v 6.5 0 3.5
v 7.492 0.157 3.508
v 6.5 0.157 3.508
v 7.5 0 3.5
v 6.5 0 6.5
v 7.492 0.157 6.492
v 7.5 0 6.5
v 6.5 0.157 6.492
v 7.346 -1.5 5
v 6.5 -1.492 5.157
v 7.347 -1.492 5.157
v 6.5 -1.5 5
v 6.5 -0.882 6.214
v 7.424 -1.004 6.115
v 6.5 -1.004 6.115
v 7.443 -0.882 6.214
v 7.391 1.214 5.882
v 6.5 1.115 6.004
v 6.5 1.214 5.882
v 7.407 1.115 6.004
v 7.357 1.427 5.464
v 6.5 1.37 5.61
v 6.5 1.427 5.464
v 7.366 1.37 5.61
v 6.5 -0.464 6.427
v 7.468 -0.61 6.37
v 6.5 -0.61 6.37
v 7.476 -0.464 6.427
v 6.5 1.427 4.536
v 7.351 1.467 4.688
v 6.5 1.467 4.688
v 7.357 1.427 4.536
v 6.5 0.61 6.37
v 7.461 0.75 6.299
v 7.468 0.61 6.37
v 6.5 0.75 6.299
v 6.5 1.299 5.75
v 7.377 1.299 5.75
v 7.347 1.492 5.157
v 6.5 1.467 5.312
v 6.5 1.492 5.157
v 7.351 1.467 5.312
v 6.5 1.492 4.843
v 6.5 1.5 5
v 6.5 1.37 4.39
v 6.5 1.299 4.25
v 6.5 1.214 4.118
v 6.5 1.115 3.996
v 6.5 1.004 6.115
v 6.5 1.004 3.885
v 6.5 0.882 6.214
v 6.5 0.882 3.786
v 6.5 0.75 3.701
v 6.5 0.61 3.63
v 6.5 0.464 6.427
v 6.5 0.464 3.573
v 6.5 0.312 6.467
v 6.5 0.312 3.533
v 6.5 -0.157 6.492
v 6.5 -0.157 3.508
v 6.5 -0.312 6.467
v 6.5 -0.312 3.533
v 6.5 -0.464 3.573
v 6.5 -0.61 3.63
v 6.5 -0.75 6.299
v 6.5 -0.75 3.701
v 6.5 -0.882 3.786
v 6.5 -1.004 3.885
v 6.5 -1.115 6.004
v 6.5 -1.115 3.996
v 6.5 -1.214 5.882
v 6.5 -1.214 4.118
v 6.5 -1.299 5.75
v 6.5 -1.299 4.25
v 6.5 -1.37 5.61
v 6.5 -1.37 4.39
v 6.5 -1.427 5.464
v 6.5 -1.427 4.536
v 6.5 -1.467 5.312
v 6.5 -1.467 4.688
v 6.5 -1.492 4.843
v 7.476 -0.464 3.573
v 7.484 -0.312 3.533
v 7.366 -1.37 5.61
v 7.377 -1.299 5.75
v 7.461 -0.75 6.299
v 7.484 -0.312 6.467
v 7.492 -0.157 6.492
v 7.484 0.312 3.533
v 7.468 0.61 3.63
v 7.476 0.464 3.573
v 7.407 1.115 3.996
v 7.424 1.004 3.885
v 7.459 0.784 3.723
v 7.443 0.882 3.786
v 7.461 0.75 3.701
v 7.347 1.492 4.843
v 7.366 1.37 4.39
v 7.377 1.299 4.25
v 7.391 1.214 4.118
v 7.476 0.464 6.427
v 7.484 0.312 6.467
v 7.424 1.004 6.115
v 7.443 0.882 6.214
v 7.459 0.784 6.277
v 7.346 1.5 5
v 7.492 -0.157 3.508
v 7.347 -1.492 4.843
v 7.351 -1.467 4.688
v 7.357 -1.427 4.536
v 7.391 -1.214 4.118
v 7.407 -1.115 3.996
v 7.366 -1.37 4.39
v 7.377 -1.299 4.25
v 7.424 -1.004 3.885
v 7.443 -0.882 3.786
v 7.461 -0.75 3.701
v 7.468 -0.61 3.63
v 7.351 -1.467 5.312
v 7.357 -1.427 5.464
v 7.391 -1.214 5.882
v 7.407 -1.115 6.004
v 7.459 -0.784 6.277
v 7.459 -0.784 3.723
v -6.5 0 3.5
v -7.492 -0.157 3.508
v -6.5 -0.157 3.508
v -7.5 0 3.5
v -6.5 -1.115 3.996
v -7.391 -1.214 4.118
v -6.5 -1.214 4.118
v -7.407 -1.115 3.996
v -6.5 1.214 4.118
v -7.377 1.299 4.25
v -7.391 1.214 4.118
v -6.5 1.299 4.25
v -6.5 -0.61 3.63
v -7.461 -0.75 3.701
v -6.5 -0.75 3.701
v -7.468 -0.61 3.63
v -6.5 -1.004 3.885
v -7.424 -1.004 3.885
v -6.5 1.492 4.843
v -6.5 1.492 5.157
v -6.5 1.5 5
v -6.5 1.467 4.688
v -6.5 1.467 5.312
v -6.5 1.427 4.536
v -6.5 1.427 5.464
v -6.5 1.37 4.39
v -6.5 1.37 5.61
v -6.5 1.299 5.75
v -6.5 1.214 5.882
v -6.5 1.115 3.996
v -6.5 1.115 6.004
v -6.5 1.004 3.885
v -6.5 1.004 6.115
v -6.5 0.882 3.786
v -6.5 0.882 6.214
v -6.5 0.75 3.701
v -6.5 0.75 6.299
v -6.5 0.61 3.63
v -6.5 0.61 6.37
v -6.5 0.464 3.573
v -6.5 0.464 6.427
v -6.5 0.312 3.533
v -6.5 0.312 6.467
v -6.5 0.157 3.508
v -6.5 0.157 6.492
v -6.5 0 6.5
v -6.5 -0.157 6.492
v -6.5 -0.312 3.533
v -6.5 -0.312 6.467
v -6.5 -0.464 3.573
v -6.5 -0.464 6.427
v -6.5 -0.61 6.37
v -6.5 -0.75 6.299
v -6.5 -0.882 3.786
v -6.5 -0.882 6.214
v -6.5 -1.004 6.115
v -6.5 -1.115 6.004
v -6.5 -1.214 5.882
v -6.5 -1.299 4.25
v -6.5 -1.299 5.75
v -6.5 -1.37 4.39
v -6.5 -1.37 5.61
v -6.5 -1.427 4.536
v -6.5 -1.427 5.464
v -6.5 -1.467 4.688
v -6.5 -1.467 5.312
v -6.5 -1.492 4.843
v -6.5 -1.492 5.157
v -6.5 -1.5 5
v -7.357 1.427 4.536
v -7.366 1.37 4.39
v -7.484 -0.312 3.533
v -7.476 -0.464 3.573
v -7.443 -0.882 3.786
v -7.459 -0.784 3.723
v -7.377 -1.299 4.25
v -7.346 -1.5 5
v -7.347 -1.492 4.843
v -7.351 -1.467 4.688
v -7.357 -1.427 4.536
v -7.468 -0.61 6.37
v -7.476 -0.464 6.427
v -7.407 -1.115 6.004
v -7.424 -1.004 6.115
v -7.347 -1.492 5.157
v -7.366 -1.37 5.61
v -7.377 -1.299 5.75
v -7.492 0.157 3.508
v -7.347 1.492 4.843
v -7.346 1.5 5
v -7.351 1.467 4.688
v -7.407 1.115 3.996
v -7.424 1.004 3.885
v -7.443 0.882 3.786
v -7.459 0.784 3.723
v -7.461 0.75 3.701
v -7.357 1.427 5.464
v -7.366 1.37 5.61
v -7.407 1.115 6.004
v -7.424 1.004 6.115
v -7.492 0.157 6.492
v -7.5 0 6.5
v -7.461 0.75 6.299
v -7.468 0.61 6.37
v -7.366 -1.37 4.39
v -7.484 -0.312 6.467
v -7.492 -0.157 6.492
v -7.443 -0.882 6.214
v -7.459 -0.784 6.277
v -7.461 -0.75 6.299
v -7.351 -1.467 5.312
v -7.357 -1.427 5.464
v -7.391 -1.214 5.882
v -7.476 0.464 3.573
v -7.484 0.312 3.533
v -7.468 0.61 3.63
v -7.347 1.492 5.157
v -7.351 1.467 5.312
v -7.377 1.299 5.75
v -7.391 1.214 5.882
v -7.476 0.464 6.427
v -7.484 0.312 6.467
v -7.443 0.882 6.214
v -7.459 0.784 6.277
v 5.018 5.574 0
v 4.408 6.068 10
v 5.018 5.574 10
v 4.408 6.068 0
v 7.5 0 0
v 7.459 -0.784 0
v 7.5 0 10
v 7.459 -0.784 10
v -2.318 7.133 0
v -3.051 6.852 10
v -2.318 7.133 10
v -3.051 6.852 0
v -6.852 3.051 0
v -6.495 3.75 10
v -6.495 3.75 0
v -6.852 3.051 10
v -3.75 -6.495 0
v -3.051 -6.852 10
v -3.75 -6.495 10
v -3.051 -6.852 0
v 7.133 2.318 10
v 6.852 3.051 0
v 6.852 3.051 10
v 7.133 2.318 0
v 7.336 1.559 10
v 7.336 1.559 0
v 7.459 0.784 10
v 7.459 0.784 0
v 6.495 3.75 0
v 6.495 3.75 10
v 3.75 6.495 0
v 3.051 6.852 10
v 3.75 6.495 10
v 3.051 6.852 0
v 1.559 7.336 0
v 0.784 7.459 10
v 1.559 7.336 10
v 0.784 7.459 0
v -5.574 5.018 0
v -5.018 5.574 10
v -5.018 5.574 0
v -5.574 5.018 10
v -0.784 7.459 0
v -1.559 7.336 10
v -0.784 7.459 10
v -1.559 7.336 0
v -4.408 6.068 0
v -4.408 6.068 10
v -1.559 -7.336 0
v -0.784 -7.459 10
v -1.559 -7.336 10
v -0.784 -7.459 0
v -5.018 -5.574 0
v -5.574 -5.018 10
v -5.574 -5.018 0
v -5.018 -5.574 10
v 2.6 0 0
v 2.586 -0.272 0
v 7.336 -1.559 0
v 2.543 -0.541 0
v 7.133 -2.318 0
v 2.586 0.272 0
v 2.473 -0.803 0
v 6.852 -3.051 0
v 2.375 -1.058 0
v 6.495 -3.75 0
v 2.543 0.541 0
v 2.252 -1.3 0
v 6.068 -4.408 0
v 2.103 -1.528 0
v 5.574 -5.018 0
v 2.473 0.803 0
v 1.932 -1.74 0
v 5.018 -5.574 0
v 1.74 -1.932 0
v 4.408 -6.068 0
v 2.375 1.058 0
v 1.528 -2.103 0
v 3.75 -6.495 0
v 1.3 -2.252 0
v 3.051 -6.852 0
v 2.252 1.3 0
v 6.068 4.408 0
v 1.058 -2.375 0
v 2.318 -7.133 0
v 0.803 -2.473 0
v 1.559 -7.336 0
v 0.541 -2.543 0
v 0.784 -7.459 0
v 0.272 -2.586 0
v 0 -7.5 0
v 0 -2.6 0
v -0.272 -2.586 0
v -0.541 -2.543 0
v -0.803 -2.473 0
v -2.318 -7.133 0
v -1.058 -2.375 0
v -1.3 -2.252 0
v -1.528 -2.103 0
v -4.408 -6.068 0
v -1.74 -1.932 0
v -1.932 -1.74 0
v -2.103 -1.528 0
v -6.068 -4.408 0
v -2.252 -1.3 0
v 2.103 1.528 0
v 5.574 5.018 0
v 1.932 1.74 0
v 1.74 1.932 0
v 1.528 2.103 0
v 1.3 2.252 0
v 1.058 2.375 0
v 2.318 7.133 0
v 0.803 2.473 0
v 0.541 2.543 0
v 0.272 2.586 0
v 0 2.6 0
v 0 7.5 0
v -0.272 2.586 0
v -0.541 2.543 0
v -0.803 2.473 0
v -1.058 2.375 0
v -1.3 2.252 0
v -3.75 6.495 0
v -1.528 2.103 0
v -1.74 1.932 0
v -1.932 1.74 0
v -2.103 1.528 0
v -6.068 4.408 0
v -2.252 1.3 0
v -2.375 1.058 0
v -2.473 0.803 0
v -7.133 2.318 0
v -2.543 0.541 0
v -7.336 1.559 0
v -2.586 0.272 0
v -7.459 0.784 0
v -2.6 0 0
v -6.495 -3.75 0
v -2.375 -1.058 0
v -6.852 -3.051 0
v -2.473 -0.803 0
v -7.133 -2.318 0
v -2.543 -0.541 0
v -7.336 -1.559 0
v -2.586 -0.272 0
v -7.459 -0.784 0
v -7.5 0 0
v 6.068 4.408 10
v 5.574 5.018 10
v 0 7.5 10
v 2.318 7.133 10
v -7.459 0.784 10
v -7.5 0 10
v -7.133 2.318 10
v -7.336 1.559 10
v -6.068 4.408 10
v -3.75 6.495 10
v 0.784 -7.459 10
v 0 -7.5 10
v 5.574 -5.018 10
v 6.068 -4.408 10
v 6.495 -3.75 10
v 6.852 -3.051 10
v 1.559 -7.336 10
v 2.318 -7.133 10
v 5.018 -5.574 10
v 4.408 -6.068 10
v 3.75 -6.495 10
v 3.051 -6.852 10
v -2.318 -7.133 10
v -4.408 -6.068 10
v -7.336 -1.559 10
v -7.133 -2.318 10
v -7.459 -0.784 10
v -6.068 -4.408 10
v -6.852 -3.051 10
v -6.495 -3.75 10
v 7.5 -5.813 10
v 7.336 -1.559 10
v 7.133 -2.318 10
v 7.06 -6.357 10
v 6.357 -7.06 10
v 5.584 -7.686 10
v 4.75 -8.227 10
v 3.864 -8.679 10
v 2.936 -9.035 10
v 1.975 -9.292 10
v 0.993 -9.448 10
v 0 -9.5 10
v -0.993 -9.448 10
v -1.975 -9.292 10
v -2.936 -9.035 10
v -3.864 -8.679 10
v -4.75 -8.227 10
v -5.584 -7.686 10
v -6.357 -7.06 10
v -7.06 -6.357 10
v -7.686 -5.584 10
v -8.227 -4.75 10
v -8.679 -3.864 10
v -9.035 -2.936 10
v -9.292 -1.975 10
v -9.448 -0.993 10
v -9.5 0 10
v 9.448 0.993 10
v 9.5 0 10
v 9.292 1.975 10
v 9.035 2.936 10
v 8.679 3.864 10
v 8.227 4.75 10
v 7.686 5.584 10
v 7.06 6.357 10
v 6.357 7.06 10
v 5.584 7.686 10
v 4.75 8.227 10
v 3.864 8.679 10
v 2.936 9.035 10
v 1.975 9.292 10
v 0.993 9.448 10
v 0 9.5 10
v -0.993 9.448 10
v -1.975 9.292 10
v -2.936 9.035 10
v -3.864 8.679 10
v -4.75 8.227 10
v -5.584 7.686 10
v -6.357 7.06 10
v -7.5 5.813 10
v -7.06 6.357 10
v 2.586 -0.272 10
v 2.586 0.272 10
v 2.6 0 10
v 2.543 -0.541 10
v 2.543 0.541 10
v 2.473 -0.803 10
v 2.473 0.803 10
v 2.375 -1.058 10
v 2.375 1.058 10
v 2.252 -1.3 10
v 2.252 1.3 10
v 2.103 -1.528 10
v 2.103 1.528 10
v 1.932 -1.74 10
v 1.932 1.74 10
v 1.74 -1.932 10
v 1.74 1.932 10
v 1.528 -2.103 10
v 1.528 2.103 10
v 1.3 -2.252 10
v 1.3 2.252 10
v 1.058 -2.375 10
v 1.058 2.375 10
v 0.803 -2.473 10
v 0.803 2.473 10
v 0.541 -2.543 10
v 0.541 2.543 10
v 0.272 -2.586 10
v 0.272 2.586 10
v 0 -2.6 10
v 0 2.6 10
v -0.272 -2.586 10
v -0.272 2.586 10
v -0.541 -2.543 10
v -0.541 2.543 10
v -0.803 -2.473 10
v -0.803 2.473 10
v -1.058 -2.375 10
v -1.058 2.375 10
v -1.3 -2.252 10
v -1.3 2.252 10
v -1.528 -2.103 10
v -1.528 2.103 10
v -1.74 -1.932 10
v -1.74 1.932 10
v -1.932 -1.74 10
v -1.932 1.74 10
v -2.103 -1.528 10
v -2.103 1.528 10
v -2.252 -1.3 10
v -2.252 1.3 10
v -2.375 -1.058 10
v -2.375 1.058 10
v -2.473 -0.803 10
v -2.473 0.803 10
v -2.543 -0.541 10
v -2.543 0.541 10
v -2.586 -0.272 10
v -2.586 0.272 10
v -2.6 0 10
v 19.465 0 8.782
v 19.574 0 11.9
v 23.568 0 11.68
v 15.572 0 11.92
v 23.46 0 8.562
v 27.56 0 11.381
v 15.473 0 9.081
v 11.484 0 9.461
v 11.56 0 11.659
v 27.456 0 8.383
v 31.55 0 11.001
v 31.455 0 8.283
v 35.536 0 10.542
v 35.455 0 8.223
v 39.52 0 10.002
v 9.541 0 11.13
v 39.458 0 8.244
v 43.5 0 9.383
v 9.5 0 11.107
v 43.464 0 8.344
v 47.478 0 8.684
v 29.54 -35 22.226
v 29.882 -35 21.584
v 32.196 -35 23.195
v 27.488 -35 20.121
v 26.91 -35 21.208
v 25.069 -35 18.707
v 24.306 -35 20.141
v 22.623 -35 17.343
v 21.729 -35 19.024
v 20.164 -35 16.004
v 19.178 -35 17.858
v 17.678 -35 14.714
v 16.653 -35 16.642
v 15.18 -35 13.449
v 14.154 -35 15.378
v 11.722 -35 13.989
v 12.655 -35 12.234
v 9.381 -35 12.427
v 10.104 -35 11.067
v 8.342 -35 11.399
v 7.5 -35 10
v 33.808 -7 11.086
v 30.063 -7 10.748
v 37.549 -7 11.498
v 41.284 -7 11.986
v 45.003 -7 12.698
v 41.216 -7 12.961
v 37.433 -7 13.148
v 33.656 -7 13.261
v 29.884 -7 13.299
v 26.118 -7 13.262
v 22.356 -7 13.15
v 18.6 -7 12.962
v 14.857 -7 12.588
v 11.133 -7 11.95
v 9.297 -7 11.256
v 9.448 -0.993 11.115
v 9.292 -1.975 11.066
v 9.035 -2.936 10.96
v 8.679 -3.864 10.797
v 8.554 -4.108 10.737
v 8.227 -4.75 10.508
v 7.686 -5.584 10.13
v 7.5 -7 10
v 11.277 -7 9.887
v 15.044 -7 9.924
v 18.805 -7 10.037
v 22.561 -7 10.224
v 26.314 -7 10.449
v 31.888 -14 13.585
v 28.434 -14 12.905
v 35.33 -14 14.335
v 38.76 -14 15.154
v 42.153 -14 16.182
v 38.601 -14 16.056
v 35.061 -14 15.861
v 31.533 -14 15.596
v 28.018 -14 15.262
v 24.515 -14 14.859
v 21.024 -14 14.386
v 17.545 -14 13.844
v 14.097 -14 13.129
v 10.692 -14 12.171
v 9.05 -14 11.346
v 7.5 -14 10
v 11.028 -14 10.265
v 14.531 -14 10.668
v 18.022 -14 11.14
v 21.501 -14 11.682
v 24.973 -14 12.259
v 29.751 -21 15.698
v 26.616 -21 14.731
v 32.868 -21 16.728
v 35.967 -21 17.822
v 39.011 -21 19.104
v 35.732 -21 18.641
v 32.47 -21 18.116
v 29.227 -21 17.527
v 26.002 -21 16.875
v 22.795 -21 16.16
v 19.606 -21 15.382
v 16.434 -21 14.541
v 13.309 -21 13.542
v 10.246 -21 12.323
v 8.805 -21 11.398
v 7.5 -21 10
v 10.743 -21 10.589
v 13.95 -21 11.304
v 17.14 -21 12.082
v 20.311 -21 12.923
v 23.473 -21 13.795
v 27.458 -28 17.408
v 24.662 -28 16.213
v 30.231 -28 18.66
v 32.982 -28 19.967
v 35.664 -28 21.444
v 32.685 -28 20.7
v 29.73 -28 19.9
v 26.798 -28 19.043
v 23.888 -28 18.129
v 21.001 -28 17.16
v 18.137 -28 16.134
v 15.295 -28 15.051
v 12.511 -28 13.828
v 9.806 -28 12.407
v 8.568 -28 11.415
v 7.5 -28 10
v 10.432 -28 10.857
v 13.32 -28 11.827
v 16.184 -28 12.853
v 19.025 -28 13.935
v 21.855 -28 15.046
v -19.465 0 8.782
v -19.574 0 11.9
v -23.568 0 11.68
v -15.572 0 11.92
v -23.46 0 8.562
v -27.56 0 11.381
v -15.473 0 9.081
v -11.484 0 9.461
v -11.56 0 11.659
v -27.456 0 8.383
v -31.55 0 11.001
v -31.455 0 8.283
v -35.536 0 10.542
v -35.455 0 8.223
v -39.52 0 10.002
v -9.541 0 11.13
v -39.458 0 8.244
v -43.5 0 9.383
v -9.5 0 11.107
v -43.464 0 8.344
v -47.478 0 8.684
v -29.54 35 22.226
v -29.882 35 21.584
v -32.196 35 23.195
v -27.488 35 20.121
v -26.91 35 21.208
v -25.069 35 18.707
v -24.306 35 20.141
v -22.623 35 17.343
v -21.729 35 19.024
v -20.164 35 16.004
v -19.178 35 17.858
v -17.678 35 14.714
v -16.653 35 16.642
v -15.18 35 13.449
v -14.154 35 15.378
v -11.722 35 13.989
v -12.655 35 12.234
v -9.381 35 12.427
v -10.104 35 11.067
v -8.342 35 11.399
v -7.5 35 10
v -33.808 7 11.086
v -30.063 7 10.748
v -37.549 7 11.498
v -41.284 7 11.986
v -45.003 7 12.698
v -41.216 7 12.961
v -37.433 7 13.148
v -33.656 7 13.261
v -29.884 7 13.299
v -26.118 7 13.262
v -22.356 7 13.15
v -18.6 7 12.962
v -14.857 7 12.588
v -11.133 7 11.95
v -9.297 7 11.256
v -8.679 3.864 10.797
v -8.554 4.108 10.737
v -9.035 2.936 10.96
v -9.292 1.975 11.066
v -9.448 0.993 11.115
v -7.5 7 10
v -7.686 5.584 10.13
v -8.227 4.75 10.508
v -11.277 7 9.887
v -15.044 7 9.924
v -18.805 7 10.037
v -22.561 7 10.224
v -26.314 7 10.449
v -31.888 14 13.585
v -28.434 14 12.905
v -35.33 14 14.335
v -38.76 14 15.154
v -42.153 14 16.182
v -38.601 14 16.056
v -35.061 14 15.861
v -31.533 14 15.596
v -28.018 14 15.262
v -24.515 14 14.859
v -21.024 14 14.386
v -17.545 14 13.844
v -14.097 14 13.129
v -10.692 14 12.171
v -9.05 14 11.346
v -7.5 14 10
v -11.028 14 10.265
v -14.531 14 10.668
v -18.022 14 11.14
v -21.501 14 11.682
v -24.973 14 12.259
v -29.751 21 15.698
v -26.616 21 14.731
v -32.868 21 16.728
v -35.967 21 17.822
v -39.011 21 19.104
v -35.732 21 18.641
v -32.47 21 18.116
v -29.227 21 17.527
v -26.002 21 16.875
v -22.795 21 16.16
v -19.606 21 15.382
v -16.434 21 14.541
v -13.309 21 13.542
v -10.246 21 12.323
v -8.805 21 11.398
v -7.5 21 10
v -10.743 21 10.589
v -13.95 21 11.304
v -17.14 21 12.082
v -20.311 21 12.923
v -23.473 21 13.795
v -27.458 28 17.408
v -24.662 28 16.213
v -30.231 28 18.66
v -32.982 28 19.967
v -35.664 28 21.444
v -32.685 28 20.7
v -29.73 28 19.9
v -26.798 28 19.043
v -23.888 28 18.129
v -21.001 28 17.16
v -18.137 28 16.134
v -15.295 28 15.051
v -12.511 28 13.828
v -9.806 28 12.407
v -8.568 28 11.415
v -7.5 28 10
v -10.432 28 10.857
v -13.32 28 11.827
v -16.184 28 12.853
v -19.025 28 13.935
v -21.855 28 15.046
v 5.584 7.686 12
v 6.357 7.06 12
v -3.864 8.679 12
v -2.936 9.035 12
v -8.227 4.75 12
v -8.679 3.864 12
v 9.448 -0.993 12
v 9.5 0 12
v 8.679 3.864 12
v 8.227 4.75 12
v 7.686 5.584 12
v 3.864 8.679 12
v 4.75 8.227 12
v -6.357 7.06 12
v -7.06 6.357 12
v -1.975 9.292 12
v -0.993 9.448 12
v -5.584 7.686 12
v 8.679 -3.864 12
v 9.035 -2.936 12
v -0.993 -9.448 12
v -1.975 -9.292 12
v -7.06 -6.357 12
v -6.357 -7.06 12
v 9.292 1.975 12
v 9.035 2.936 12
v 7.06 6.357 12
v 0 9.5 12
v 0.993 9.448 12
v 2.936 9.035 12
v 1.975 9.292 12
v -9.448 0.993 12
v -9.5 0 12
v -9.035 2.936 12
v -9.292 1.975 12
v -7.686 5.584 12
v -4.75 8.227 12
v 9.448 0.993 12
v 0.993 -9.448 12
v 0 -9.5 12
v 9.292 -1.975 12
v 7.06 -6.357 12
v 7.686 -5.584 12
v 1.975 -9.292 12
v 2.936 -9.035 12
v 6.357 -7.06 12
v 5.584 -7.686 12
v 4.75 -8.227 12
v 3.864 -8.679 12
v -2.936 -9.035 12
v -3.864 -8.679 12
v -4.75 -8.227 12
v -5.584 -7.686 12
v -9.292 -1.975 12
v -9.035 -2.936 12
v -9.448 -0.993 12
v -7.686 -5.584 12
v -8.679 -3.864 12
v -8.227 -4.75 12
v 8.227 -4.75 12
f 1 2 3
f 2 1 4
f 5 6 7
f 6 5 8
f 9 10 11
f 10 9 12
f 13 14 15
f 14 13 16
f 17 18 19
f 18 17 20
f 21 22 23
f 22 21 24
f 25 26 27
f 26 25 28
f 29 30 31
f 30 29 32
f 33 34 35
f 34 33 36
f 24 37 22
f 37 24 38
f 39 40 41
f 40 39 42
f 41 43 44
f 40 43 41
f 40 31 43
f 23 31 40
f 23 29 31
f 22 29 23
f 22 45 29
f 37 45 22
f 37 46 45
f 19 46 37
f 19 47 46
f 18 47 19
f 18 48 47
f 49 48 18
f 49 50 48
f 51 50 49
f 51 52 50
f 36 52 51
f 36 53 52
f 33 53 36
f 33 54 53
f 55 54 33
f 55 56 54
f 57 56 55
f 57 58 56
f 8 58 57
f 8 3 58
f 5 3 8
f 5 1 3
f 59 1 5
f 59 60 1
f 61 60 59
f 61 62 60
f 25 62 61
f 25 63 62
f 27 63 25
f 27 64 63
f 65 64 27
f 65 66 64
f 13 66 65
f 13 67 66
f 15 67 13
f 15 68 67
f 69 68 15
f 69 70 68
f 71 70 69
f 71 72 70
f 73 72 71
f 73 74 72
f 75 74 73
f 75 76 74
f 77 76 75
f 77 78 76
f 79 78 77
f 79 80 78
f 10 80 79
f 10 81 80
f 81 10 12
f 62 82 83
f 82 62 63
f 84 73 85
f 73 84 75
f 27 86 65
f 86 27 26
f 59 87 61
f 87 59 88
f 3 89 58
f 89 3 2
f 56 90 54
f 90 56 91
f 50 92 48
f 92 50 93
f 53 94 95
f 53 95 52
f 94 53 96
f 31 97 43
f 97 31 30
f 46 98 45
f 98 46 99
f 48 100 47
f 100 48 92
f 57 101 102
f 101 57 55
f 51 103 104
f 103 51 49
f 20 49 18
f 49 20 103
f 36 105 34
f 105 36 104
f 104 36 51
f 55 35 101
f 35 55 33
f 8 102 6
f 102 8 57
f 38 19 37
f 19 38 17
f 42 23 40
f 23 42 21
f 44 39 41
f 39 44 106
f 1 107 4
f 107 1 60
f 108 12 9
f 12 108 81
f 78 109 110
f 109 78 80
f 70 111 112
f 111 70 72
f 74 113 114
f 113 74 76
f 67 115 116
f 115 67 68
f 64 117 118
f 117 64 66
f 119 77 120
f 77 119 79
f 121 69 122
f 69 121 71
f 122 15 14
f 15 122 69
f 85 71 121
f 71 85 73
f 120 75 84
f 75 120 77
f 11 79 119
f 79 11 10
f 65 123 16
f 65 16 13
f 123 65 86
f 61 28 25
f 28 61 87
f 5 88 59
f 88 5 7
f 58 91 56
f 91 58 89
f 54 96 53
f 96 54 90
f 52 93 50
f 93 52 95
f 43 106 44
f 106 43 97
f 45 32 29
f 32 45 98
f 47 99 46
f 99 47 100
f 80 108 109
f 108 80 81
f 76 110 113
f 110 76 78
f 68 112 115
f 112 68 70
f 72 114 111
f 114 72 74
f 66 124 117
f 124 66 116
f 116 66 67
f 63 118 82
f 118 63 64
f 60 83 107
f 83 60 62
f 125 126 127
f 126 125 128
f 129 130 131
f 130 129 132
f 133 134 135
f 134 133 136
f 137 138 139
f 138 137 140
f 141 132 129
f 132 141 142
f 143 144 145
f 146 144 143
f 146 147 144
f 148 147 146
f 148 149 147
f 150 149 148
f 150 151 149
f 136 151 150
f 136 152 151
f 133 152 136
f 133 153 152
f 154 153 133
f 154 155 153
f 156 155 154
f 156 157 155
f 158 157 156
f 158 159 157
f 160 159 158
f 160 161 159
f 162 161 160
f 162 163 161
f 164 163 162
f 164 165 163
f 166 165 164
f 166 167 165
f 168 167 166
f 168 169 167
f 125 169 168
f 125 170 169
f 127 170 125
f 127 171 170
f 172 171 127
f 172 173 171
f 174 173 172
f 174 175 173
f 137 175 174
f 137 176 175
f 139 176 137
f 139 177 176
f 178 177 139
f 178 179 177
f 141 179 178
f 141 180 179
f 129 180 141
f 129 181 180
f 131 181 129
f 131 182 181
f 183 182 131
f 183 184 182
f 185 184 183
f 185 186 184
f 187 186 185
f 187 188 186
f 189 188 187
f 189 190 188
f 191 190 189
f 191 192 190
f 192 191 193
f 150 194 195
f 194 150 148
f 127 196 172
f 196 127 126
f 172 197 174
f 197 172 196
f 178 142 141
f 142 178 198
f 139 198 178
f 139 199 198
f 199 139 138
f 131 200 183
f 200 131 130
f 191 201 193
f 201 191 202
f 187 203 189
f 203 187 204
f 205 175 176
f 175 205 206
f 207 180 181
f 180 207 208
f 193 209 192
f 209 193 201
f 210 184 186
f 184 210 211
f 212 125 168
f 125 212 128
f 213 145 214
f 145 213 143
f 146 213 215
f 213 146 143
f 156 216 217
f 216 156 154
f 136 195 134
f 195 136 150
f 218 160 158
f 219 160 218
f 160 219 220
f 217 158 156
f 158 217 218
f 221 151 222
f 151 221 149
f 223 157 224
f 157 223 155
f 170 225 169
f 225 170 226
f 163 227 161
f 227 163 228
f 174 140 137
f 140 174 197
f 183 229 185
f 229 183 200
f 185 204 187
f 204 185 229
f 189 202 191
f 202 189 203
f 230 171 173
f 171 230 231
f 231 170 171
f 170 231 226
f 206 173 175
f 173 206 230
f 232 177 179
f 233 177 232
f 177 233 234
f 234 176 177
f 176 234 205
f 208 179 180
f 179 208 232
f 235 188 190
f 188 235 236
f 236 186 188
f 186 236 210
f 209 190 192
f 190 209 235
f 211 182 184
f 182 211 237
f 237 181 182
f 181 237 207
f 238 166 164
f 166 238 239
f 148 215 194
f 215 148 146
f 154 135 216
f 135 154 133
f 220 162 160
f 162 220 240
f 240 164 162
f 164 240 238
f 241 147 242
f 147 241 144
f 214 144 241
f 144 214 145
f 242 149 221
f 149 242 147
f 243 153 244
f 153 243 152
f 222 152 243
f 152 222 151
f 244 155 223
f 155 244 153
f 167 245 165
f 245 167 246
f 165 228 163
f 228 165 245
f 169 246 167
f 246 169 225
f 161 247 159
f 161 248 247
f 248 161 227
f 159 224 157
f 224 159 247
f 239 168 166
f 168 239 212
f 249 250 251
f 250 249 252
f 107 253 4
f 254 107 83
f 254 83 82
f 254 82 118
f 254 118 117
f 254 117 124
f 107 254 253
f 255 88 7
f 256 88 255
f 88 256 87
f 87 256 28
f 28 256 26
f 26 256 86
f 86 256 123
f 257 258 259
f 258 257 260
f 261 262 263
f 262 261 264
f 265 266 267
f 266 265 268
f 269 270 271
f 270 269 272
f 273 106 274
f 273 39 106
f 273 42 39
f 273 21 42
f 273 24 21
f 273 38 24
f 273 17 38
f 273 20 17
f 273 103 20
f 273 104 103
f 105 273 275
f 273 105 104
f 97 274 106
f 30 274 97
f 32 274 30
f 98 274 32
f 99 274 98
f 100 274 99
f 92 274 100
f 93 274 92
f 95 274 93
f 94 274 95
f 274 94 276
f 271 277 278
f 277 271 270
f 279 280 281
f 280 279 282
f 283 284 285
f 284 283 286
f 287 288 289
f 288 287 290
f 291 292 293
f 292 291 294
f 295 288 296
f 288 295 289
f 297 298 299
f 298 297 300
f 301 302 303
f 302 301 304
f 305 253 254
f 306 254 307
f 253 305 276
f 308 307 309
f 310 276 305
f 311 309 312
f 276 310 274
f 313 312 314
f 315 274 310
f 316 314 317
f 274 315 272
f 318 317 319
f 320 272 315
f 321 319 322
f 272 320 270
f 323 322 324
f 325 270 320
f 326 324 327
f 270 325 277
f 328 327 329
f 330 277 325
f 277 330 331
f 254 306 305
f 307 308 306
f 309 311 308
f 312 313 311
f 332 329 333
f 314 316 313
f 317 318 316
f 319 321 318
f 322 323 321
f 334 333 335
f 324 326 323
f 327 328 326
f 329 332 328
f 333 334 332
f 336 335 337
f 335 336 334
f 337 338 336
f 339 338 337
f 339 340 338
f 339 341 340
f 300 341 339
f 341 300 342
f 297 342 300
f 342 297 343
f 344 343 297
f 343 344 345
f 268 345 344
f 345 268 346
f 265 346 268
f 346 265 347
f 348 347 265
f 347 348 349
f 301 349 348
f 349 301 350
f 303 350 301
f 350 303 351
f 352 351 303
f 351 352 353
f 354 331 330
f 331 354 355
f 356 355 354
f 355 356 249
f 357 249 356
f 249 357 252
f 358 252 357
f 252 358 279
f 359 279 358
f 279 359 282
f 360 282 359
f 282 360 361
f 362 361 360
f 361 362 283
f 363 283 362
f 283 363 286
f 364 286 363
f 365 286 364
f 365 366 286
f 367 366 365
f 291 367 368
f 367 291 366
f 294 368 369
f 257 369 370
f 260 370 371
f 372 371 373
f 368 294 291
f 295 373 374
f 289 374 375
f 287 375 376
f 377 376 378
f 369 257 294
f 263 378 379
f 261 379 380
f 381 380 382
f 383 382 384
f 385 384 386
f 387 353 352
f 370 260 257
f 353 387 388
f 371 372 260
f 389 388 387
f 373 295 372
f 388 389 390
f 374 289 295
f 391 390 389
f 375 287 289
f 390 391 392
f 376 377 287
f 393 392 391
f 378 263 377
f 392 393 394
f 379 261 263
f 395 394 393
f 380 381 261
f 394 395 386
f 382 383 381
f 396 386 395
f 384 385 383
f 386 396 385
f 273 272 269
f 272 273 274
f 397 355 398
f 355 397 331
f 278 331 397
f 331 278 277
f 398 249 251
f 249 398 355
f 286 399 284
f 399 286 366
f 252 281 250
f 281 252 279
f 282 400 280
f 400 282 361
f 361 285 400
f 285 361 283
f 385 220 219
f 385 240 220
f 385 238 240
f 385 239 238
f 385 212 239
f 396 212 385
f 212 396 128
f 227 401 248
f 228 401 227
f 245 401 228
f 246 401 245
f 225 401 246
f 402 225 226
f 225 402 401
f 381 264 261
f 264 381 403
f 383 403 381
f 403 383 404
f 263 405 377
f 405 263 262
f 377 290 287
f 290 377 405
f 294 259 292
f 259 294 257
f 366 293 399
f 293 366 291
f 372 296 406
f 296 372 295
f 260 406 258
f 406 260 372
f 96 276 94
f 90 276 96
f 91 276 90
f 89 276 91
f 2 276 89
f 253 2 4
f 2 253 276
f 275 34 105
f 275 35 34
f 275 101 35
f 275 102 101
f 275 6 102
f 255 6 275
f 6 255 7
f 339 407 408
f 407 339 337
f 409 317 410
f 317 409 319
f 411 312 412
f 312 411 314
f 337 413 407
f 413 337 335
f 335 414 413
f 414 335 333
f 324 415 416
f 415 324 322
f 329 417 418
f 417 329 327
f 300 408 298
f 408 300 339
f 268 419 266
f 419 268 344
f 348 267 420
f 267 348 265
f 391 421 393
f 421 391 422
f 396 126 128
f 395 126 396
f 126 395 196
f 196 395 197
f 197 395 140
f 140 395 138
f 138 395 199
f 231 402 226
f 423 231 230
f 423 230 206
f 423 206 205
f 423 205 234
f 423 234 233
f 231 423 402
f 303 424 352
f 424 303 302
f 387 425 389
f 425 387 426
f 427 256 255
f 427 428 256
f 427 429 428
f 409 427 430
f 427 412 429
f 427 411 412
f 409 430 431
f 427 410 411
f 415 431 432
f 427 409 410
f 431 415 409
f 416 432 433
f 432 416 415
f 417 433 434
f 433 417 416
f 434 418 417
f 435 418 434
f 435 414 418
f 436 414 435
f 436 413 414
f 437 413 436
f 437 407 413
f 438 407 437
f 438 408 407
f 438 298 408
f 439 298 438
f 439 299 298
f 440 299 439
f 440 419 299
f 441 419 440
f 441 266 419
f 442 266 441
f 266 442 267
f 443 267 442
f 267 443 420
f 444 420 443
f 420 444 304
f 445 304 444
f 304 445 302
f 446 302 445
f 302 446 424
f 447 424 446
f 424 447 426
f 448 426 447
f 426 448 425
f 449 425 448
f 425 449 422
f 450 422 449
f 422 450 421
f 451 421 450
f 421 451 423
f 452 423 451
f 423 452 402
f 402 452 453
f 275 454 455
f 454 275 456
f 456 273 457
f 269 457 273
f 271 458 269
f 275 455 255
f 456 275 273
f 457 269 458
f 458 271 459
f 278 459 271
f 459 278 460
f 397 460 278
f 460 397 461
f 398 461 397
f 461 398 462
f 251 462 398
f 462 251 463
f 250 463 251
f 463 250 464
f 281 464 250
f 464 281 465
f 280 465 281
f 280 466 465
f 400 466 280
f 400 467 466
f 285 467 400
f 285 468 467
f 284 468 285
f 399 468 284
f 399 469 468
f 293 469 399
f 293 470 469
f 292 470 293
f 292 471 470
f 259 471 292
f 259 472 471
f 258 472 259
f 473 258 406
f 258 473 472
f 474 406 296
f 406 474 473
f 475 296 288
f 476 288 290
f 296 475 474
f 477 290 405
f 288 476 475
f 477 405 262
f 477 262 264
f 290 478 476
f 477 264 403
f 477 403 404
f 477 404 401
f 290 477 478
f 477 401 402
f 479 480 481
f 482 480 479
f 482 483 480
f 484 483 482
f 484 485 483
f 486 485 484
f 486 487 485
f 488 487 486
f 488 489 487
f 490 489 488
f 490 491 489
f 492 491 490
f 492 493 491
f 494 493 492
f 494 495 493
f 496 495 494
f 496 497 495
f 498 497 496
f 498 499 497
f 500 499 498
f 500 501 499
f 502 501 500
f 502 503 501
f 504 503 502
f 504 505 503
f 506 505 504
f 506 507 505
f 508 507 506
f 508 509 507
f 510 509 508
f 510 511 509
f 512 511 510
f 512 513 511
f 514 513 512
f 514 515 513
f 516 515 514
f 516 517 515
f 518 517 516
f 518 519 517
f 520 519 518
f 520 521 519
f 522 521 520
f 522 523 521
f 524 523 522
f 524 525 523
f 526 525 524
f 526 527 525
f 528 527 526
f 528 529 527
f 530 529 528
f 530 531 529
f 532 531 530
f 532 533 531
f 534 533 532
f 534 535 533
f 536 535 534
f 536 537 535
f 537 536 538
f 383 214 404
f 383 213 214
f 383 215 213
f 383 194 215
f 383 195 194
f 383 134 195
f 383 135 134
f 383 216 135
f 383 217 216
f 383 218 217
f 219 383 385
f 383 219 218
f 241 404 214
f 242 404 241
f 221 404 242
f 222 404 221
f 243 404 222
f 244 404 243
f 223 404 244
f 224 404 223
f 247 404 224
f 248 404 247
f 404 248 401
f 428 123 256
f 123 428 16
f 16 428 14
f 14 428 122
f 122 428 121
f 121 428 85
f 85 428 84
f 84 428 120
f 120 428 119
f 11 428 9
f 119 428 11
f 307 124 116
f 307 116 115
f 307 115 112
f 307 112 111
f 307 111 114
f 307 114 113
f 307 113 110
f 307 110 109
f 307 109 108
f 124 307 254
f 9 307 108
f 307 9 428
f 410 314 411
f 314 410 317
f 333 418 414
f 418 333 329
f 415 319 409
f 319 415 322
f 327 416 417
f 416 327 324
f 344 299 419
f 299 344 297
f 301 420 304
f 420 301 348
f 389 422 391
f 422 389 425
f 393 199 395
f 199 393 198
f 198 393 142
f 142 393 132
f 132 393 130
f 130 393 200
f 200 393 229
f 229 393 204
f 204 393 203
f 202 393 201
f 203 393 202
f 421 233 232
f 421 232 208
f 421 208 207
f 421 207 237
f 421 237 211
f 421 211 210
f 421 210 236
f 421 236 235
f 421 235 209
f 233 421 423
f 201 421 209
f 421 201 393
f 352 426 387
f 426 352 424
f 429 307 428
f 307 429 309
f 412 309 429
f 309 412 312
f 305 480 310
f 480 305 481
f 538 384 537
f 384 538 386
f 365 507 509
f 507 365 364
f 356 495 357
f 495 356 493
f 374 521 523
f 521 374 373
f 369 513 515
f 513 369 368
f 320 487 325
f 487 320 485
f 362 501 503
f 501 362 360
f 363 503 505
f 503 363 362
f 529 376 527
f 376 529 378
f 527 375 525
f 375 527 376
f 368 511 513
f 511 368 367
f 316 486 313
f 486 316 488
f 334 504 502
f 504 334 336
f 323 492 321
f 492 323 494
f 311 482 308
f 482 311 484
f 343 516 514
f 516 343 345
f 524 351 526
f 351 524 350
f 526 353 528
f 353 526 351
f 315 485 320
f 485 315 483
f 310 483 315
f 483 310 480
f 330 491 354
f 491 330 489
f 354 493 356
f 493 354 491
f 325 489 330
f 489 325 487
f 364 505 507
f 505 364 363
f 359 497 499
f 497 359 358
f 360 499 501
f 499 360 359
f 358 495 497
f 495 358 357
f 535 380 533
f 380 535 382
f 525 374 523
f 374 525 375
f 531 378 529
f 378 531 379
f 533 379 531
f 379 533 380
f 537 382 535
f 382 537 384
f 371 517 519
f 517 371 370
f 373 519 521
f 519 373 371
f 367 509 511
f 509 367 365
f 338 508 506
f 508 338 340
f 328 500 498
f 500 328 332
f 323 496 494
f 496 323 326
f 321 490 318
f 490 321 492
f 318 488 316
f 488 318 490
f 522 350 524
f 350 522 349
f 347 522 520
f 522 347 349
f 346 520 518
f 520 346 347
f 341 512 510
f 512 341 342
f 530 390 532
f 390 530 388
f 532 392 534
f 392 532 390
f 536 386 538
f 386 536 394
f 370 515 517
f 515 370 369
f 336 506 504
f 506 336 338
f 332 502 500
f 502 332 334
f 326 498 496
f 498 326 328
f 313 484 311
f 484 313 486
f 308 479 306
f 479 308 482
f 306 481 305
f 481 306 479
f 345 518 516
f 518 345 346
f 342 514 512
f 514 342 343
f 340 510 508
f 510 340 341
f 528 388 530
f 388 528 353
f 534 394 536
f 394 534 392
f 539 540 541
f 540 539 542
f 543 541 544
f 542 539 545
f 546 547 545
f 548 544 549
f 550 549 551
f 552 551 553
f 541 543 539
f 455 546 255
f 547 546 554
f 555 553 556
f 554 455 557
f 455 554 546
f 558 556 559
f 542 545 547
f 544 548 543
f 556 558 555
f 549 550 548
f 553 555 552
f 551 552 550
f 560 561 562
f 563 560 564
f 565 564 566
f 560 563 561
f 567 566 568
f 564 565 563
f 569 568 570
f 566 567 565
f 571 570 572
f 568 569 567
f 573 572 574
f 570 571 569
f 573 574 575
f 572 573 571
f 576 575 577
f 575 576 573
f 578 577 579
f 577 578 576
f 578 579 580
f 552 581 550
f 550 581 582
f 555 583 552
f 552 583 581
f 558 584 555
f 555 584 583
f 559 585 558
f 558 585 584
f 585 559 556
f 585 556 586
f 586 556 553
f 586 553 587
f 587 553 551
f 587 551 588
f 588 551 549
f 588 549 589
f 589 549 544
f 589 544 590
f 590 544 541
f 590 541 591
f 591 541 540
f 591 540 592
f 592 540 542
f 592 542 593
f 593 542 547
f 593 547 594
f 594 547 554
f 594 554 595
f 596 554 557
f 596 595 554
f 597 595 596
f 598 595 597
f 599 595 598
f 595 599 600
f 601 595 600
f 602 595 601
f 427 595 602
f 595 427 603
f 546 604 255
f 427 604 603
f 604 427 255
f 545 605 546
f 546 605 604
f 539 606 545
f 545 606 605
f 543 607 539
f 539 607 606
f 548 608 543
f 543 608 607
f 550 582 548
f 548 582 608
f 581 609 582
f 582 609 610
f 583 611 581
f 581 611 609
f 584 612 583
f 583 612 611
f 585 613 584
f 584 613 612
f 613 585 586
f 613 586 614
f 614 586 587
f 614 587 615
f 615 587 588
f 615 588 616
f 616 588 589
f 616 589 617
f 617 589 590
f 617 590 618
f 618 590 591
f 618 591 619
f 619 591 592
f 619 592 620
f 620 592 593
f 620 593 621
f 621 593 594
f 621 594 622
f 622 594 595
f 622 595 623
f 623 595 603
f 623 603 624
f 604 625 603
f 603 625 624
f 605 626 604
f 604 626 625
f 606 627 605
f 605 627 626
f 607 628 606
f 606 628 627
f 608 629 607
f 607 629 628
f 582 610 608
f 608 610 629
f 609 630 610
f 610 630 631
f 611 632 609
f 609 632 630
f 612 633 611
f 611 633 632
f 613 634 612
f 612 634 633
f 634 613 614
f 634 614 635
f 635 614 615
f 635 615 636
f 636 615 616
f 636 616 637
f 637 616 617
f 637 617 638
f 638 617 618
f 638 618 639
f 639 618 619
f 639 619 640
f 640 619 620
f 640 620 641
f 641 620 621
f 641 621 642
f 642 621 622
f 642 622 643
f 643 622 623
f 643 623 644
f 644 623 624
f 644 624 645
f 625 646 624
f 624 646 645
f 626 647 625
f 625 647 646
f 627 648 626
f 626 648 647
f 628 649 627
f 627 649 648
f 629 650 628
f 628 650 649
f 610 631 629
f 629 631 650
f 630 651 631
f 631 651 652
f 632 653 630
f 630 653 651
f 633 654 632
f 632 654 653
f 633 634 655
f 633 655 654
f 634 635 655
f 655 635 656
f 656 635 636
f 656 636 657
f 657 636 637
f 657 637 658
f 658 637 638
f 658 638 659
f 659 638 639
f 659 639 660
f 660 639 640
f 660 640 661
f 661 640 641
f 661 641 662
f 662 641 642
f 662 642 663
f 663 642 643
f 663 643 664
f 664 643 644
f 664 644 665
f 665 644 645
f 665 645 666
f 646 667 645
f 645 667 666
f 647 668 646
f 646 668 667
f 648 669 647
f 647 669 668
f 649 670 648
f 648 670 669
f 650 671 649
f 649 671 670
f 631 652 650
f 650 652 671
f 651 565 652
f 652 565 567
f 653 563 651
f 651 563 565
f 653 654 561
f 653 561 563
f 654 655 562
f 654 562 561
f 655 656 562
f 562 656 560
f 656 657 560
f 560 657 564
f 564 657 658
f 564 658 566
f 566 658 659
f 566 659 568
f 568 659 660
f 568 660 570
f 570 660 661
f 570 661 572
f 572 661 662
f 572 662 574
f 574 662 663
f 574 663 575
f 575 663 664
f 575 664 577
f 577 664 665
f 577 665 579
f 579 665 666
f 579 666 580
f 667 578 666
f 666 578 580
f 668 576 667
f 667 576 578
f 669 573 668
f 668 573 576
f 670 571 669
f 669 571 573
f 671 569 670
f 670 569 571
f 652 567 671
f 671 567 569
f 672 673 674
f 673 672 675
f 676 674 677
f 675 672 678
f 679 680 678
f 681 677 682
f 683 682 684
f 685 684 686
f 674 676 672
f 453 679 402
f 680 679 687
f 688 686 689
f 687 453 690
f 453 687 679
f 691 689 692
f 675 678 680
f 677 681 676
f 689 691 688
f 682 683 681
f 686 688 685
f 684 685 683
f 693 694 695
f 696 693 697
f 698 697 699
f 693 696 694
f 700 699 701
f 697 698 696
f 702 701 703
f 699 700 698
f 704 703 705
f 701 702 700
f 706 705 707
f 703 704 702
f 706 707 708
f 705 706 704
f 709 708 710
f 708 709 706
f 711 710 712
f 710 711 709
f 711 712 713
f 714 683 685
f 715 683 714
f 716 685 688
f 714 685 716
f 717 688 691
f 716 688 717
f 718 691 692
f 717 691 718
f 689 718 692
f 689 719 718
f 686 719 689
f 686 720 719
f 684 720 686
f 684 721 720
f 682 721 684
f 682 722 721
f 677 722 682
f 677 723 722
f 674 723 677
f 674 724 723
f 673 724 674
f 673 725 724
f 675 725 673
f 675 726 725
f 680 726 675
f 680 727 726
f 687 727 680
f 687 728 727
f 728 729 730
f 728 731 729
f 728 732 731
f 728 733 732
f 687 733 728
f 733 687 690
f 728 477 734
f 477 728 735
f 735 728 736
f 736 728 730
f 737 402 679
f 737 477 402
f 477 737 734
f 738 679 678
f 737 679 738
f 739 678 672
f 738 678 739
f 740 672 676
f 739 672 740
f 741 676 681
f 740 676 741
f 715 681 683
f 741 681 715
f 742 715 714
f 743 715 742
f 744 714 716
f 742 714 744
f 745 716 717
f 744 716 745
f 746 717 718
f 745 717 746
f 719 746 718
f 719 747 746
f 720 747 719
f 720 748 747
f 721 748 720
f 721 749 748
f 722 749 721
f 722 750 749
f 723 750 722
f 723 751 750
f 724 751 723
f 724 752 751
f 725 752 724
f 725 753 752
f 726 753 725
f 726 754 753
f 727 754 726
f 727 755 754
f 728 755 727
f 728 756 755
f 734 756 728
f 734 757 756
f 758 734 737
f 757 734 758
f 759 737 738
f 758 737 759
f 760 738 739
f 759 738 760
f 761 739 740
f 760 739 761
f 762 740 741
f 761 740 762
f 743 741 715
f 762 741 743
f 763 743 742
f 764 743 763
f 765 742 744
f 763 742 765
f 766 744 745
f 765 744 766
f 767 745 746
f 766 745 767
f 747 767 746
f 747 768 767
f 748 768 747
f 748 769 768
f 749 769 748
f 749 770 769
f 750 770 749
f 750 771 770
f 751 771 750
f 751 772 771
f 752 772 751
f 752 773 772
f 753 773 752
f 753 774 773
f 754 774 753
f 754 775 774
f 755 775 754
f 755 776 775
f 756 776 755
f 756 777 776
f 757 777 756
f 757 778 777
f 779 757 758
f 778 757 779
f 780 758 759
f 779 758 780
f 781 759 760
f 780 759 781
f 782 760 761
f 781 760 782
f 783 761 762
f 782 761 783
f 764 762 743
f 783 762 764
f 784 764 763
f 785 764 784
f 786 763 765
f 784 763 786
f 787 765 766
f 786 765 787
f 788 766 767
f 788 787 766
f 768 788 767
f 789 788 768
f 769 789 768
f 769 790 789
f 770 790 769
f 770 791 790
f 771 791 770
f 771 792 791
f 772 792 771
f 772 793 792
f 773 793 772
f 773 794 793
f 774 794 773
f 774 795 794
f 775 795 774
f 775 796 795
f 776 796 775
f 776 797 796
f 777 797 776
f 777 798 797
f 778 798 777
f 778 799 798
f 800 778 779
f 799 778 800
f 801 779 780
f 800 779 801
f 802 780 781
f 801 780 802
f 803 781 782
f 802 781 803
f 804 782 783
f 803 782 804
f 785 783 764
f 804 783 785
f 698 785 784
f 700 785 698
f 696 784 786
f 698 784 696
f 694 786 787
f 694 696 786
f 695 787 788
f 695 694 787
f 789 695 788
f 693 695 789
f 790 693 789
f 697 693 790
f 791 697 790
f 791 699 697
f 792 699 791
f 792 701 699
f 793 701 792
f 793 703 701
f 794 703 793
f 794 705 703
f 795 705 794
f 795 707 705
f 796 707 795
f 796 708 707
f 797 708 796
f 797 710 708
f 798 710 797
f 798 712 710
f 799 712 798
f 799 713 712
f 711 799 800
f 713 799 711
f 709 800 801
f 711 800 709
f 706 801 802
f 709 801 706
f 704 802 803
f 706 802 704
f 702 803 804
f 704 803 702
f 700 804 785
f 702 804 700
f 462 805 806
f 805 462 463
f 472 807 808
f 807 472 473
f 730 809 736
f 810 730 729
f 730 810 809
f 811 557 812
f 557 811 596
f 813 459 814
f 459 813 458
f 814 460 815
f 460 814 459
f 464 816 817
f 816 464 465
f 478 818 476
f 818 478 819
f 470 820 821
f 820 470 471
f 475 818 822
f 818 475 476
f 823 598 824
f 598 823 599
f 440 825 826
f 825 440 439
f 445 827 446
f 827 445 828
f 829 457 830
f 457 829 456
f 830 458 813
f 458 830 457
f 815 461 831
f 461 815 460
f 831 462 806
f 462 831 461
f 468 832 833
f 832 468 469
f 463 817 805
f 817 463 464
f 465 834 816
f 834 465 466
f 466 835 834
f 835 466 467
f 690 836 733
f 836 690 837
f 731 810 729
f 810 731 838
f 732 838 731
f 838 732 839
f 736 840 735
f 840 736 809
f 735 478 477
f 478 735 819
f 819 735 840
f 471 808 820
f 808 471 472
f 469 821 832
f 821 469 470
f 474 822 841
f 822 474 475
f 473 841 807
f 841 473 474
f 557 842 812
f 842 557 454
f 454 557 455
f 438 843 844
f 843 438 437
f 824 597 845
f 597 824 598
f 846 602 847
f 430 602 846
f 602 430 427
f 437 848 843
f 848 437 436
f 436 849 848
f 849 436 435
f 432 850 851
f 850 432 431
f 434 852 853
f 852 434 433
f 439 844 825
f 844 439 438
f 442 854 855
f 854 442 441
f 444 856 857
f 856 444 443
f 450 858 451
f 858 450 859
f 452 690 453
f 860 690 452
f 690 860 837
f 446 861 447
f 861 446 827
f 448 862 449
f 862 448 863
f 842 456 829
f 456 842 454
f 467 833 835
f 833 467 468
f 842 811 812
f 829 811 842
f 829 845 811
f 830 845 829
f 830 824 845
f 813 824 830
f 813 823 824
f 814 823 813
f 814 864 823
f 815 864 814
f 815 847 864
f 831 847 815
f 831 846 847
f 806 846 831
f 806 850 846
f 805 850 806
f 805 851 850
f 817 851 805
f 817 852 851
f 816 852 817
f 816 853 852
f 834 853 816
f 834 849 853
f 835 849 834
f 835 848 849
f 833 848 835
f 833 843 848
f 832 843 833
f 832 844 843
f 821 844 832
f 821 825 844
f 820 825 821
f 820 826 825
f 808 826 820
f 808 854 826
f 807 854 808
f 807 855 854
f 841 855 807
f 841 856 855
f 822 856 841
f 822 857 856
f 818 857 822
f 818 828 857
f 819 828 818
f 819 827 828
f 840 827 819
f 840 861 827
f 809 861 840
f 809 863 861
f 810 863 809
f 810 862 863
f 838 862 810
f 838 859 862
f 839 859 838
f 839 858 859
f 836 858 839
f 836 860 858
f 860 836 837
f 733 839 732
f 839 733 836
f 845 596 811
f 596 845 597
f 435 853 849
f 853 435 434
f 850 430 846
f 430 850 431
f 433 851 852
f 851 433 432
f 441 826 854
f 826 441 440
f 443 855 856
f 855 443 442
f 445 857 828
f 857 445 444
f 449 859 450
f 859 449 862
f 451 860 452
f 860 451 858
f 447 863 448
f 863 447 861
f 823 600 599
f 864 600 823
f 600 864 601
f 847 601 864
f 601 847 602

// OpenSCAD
/*
 * COMPLETE MOTOR + IMPELLER ASSEMBLY
 * For CFD fluid testing and visualization
 * 
 * This model includes:
 *   - Brushless motor (2204-2206 size)
 *   - Motor shaft (5mm)
 *   - Impeller hub
 *   - 3 impeller variants (bladeless, AI-blades, hybrid)
 *   - Mounting plate
 * 
 * Usage:
 *   - Render full assembly: F6
 *   - Export for CFD: Set EXPORT_MODE = "impeller_only"
 *   - Change design: Set IMPELLER_TYPE = "bladeless" | "bladed" | "hybrid"
 */

// ============================================================================
// CONFIGURATION PARAMETERS (AI-Optimizable)
// ============================================================================

// General Settings
$fn = 60;  // Resolution for CFD export (increase to 100 for final)

// Export Mode
EXPORT_MODE = "impeller_only";  // Options: "full_assembly", "impeller_only", "motor_only"

// Impeller Type
IMPELLER_TYPE = "bladed";  // Options: "bladeless", "bladed", "hybrid"

// Motor Specifications (2204-2206 brushless)
MOTOR_DIAMETER = 28;         // mm
MOTOR_HEIGHT = 25;           // mm
MOTOR_SHAFT_DIAMETER = 5;    // mm (standard)
MOTOR_SHAFT_LENGTH = 15;     // mm (extends above motor)
MOTOR_MOUNT_PATTERN = 16;    // mm (16x16 or 19x19 common)
MOTOR_SCREW_DIAMETER = 3;    // M3 screws

// Impeller Parameters - BLADELESS
BLADELESS_OUTER_DIAMETER = 90;    // mm
BLADELESS_AIR_GAP = 0.8;          // mm (optimize: 0.6-1.2)
BLADELESS_THROAT_RATIO = 0.72;    // (optimize: 0.65-0.80)
BLADELESS_EXPANSION_ANGLE = 18;   // degrees (optimize: 12-25)
BLADELESS_RING_THICKNESS = 3;     // mm (optimize: 2-4)
BLADELESS_HEIGHT = 24;            // mm

// Impeller Parameters - BLADED
BLADED_DIAMETER = 85;
BLADED_HUB_DIAMETER = 15;         // mm (optimize: 12-20)
BLADED_BLADE_COUNT = 2;
BLADED_ROOT_CHORD = 40;
BLADED_TIP_CHORD_RATIO = 0.7;    // (optimize: 0.6-0.8)
BLADED_BLADE_THICKNESS = 2;       // mm (optimize: 1.5-3)
BLADED_BLADE_TWIST = -30;
BLADED_ATTACK_ANGLE = -2;
BLADED_BLADE_HEIGHT = 12;         // mm (optimize: 10-15)

// Hub Parameters
HUB_DIAMETER = 15;
HUB_HEIGHT = 10;
HUB_SET_SCREW_DIAMETER = 3;  // M3 set screw

// Mounting Plate
PLATE_SIZE = 50;
PLATE_THICKNESS = 3;

// ============================================================================
// MOTOR MODEL
// ============================================================================

module brushless_motor_2204() {
    color("DarkSlateGray") {
        // Motor can (bell)
        difference() {
            cylinder(h=MOTOR_HEIGHT, d=MOTOR_DIAMETER);
            
            // Hollow inside (weight reduction visualization)
            translate([0, 0, -0.5])
                cylinder(h=MOTOR_HEIGHT - 5, d=MOTOR_DIAMETER - 4);
            
            // Mounting holes
            for(i = [0:3]) {
                rotate([0, 0, i * 90])
                    translate([MOTOR_MOUNT_PATTERN/2, 0, MOTOR_HEIGHT/2])
                        rotate([90, 0, 0])
                            cylinder(h=MOTOR_DIAMETER, d=MOTOR_SCREW_DIAMETER, center=true);
            }
        }
        
        // Motor base
        translate([0, 0, -3])
            cylinder(h=3, d=MOTOR_DIAMETER - 2);
    }
    
    // Motor shaft
    color("Silver")
        translate([0, 0, MOTOR_HEIGHT])
            cylinder(h=MOTOR_SHAFT_LENGTH, d=MOTOR_SHAFT_DIAMETER);
    
    // Shaft tip (for hub attachment)
    color("Silver")
        translate([0, 0, MOTOR_HEIGHT + MOTOR_SHAFT_LENGTH])
            cylinder(h=2, d=MOTOR_SHAFT_DIAMETER - 0.5);
}

// ============================================================================
// IMPELLER HUB
// ============================================================================

module impeller_hub() {
    color("Gray")
    difference() {
        // Hub body
        cylinder(h=HUB_HEIGHT, d=HUB_DIAMETER);
        
        // Shaft hole (5mm + 0.2mm clearance)
        translate([0, 0, -0.5])
            cylinder(h=HUB_HEIGHT + 1, d=MOTOR_SHAFT_DIAMETER + 0.2);
        
        // Set screw holes (2x for balance)
        for(i = [0:1]) {
            rotate([0, 0, i * 180])
                translate([HUB_DIAMETER/2 - 1, 0, HUB_HEIGHT/2])
                    rotate([0, 90, 0])
                        cylinder(h=5, d=HUB_SET_SCREW_DIAMETER);
        }
    }
}

// ============================================================================
// BLADELESS IMPELLER (Dyson-style)
// ============================================================================

module bladeless_impeller() {
    outer_r = BLADELESS_OUTER_DIAMETER / 2;
    throat_r = outer_r * BLADELESS_THROAT_RATIO;
    gap = BLADELESS_AIR_GAP;
    
    color("SkyBlue", 0.7)
    difference() {
        // Outer ring
        rotate_extrude()
            translate([outer_r - BLADELESS_RING_THICKNESS/2, BLADELESS_HEIGHT/2, 0])
                circle(d=BLADELESS_RING_THICKNESS + BLADELESS_HEIGHT);
        
        // Inner air gap (critical for Coanda effect)
        rotate_extrude()
            translate([outer_r - gap - BLADELESS_RING_THICKNESS/2, BLADELESS_HEIGHT/2, 0])
                circle(d=BLADELESS_RING_THICKNESS + BLADELESS_HEIGHT - 2*gap);
    }
    
    // Base plate (connects to hub)
    color("SkyBlue", 0.7)
    translate([0, 0, -2])
        difference() {
            cylinder(h=2, d=outer_r * 2);
            translate([0, 0, -0.5])
                cylinder(h=3, d=HUB_DIAMETER + 1);
        }
    
    // Air inlet (bell-shaped for smooth flow)
    color("SkyBlue", 0.7)
    translate([0, 0, -2]) {
        difference() {
            cylinder(h=15, d1=throat_r * 2, d2=outer_r * 1.8);
            translate([0, 0, -0.5])
                cylinder(h=16, d1=throat_r * 2 - 3, d2=outer_r * 1.8 - 3);
        }
    }
}

// ============================================================================
// AI-OPTIMIZED BLADED IMPELLER (NACA 2412 profile)
// ============================================================================

module naca_2412_blade(chord, height, twist_angle, attack_angle) {
    // Simplified NACA 2412 airfoil profile
    // Using parametric approximation for 3D printing
    
    color("LightSteelBlue", 0.8)
    linear_extrude(height=height, twist=twist_angle, scale=BLADED_TIP_CHORD_RATIO) {
        rotate([0, 0, attack_angle])
        polygon([
            // Upper surface (cambered)
            [0, 0],
            [chord * 0.05, chord * 0.03],
            [chord * 0.1, chord * 0.045],
            [chord * 0.2, chord * 0.055],
            [chord * 0.3, chord * 0.058],
            [chord * 0.4, chord * 0.056],
            [chord * 0.5, chord * 0.052],
            [chord * 0.6, chord * 0.046],
            [chord * 0.7, chord * 0.038],
            [chord * 0.8, chord * 0.028],
            [chord * 0.9, chord * 0.016],
            [chord * 1.0, chord * 0.002],
            // Lower surface (less cambered)
            [chord * 0.9, -chord * 0.010],
            [chord * 0.8, -chord * 0.016],
            [chord * 0.7, -chord * 0.020],
            [chord * 0.6, -chord * 0.022],
            [chord * 0.5, -chord * 0.023],
            [chord * 0.4, -chord * 0.022],
            [chord * 0.3, -chord * 0.020],
            [chord * 0.2, -chord * 0.016],
            [chord * 0.1, -chord * 0.010],
            [chord * 0.05, -chord * 0.005],
        ]);
    }
}

module bladed_impeller() {
    // Blades
    for(i = [0 : BLADED_BLADE_COUNT - 1]) {
        rotate([0, 0, i * (360 / BLADED_BLADE_COUNT)])
            translate([BLADED_HUB_DIAMETER/2, 0, 0])
                rotate([90, 0, 0])
                    naca_2412_blade(
                        BLADED_ROOT_CHORD, 
                        (BLADED_DIAMETER - BLADED_HUB_DIAMETER) / 2,
                        BLADED_BLADE_TWIST,
                        BLADED_ATTACK_ANGLE
                    );
    }
    
    // Hub disk (connects blades)
    color("LightSteelBlue", 0.8)
    cylinder(h=2, d=BLADED_HUB_DIAMETER + 4);
}

// ============================================================================
// HYBRID IMPELLER (Blades inside bladeless ring)
// ============================================================================

module hybrid_impeller() {
    // Outer bladeless ring
    bladeless_impeller();
    
    // Inner bladed impeller (scaled down to fit)
    scale([0.85, 0.85, 1])
        bladed_impeller();
}

// ============================================================================
// MOUNTING PLATE
// ============================================================================

module mounting_plate() {
    color("DimGray")
    difference() {
        // Base plate
        translate([-PLATE_SIZE/2, -PLATE_SIZE/2, 0])
            cube([PLATE_SIZE, PLATE_SIZE, PLATE_THICKNESS]);
        
        // Center hole for motor shaft
        translate([0, 0, -0.5])
            cylinder(h=PLATE_THICKNESS + 1, d=MOTOR_DIAMETER + 2);
        
        // Motor mounting holes
        for(i = [0:3]) {
            rotate([0, 0, i * 90])
                translate([MOTOR_MOUNT_PATTERN/2, 0, -0.5])
                    cylinder(h=PLATE_THICKNESS + 1, d=MOTOR_SCREW_DIAMETER);
        }
    }
}

// ============================================================================
// COMPLETE ASSEMBLY
// ============================================================================

module complete_assembly() {
    // Mounting plate (bottom)
    translate([0, 0, -PLATE_THICKNESS])
        mounting_plate();
    
    // Motor
    translate([0, 0, 0])
        brushless_motor_2204();
    
    // Hub (on shaft)
    translate([0, 0, MOTOR_HEIGHT + MOTOR_SHAFT_LENGTH - 2])
        impeller_hub();
    
    // Impeller (on hub)
    translate([0, 0, MOTOR_HEIGHT + MOTOR_SHAFT_LENGTH + HUB_HEIGHT]) {
        if (IMPELLER_TYPE == "bladeless") {
            bladeless_impeller();
        } else if (IMPELLER_TYPE == "bladed") {
            bladed_impeller();
        } else if (IMPELLER_TYPE == "hybrid") {
            hybrid_impeller();
        }
    }
}

// ============================================================================
// RENDER BASED ON EXPORT MODE
// ============================================================================

if (EXPORT_MODE == "full_assembly") {
    complete_assembly();
} 
else if (EXPORT_MODE == "impeller_only") {
    // For CFD testing - impeller + hub only
    impeller_hub();
    translate([0, 0, HUB_HEIGHT]) {
        if (IMPELLER_TYPE == "bladeless") {
            bladeless_impeller();
        } else if (IMPELLER_TYPE == "bladed") {
            bladed_impeller();
        } else if (IMPELLER_TYPE == "hybrid") {
            hybrid_impeller();
        }
    }
}
else if (EXPORT_MODE == "motor_only") {
    brushless_motor_2204();
}

// ============================================================================
// ANNOTATIONS FOR VISUALIZATION
// ============================================================================

// Uncomment to show dimensions
/*
color("Red", 0.3)
translate([BLADED_DIAMETER/2 + 10, 0, 20])
    text(str("Ø", BLADED_DIAMETER, "mm"), size=5, halign="left");

color("Green", 0.3)
translate([0, BLADED_DIAMETER/2 + 10, 20])
    text(str(BLADED_BLADE_COUNT, " blades"), size=5, halign="center");
*/

// ============================================================================
// EXPORT NOTES
// ============================================================================

/*
 * TO EXPORT FOR CFD TESTING:
 * 
 * 1. Set EXPORT_MODE = "impeller_only"
 * 2. Set IMPELLER_TYPE = "bladeless" (or "bladed" or "hybrid")
 * 3. Press F6 to render
 * 4. File → Export → Export as STL
 * 5. Use filename: impeller_bladeless_fn60.stl
 * 
 * FOR OPTIMIZATION:
 * - Modify parameters at top (marked with "optimize:")
 * - Re-render and export
 * - Upload to SimScale for CFD
 * - Compare results
 * 
 * RECOMMENDED CFD SETTINGS:
 * - Solver: k-omega SST
 * - RPM: 5000, 7000, 9000
 * - Mesh: 3-5M cells
 * - Boundary: Rotating zone on impeller
 */
